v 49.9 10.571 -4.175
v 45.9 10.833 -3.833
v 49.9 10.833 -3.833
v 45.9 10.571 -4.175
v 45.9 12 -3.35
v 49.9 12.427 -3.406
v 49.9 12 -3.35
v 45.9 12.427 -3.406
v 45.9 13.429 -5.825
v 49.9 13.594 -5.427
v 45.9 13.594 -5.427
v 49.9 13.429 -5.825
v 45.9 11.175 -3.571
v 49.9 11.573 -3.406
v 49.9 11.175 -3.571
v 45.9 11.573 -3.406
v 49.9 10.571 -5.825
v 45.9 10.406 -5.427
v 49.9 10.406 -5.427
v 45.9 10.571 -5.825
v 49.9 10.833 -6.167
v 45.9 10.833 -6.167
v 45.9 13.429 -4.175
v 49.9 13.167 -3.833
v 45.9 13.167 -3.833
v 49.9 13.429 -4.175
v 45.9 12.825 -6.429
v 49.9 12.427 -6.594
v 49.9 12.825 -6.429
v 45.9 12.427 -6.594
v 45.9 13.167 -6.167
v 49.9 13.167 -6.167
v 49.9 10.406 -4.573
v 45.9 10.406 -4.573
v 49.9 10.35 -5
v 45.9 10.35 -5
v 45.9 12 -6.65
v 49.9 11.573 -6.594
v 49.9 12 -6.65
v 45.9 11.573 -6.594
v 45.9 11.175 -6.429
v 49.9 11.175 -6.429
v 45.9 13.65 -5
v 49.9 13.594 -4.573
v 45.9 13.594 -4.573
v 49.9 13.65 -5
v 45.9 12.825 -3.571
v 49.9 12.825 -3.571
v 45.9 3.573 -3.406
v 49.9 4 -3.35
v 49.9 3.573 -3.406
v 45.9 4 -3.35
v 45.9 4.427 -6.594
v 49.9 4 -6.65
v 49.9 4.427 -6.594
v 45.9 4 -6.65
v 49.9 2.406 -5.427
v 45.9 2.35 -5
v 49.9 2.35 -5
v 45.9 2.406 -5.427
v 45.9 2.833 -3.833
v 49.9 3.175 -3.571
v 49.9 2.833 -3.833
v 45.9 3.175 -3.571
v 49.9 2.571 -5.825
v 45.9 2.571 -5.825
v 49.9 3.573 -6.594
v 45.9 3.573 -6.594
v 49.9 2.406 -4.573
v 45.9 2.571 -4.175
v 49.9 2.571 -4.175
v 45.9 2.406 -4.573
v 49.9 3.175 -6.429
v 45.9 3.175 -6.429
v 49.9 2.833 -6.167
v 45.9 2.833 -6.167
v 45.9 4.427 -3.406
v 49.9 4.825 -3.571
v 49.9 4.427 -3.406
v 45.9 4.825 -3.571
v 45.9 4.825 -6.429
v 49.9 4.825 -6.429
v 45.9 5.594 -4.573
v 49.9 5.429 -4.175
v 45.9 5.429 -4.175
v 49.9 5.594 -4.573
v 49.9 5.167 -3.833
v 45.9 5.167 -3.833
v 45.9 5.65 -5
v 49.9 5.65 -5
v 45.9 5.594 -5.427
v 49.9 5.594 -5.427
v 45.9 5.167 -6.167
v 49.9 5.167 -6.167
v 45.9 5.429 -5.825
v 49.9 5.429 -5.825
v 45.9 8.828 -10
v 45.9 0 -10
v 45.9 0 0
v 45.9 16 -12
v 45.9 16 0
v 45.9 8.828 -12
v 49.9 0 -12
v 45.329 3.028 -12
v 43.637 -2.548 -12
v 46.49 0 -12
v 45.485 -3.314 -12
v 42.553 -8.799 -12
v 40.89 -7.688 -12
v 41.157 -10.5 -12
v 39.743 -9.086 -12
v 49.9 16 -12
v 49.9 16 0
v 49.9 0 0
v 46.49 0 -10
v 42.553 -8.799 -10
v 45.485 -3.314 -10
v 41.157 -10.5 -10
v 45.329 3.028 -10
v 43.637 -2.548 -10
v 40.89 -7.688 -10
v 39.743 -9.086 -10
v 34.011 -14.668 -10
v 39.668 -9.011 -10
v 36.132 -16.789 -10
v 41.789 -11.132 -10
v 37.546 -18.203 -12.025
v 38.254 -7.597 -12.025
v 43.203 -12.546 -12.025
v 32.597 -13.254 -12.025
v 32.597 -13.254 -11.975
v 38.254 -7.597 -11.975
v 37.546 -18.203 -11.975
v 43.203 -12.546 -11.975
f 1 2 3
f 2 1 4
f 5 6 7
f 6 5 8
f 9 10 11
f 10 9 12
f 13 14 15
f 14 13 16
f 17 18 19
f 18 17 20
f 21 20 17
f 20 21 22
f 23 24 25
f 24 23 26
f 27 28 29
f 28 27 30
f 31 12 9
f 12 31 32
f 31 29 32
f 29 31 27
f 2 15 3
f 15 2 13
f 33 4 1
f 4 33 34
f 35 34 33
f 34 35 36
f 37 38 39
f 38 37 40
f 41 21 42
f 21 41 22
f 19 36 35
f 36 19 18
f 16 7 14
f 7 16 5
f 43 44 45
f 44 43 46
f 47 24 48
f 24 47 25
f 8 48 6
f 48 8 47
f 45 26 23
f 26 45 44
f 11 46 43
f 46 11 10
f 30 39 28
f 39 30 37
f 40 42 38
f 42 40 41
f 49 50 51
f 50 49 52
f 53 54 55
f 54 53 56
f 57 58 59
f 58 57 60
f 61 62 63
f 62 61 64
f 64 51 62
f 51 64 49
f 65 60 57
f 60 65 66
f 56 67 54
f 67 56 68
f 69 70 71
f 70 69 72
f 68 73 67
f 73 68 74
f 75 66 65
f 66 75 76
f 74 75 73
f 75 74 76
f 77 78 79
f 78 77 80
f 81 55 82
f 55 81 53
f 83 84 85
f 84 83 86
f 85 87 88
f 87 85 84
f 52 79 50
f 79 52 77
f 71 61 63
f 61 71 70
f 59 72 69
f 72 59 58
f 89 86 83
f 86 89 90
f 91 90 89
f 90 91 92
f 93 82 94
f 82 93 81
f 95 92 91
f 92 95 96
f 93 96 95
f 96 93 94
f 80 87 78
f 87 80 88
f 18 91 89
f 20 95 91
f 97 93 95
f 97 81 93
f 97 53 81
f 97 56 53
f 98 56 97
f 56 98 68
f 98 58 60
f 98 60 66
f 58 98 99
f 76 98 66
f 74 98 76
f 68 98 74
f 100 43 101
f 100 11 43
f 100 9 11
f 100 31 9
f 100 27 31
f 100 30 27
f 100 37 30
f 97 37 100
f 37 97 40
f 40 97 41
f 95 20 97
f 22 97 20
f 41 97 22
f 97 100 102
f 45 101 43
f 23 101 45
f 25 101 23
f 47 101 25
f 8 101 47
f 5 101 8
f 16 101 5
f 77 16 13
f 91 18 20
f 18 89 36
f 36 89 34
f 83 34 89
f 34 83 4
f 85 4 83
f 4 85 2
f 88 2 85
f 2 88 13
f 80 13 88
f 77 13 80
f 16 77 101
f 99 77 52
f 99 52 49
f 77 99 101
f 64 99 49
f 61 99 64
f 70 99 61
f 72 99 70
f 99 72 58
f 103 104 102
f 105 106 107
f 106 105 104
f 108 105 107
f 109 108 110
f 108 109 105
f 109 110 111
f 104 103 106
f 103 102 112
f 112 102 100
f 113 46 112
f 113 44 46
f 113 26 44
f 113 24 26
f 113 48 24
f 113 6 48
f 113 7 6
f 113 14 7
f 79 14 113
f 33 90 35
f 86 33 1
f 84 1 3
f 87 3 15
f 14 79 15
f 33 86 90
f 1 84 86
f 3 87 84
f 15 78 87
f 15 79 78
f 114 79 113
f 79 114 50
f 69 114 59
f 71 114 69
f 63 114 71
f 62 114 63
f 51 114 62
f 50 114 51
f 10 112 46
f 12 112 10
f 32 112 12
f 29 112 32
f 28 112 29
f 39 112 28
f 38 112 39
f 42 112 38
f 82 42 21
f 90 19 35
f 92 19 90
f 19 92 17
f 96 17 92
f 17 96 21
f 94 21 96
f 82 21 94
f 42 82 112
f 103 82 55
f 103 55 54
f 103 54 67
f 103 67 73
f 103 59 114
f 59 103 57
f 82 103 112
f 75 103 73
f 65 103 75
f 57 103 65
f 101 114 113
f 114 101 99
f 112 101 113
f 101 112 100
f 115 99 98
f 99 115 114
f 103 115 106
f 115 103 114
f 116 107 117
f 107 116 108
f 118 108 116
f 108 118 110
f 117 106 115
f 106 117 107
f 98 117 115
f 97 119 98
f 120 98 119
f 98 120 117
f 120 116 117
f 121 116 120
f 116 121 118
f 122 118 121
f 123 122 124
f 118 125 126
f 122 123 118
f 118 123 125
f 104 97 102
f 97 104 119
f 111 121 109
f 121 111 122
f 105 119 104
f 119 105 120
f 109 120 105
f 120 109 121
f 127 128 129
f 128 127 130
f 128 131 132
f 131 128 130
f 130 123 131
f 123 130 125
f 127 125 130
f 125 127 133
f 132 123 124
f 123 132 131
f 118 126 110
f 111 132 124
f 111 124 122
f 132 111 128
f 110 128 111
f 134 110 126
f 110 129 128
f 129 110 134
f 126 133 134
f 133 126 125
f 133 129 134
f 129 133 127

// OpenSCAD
// file: microscope_parameters.scad
/******************************************************************
*                                                                 *
* OpenFlexure Microscope: Microscope Parameters                   *
*                                                                 *
* This is the top-level configuration file for the OpenFlexure    *
* microscope, an open microscope and 3-axis translation stage.    *
* It gets really good precision over a ~10mm range, by using      *
* plastic flexure mechanisms.                                     *
*                                                                 *
* Generally I've tried to put parts (or collections of closely    *
* related parts) in their own files.  However, all the parts      *
* depend on the geometry of the microscope - so these parameters  *
* are gathered together here.  In general, the ones you might     *
* to change are towards the top!  Lower-down ones are defined in  *
* terms of higher-up ones - confusion might arise if you redefine *
* these later...                                                  *
*                                                                 *
* (c) Richard Bowman, January 2016                                *
* Released under the CERN Open Hardware License                   *
*                                                                 *
* http://www.github.com/rwb27/openflexure_microscope              *
* http://www.docubricks.com/projects/openflexure-microscope       *
* http://www.waterscope.org                                       *
*                                                                 *
******************************************************************/

d = 0.05;
$fn=32;

// These are the most useful parameters to change!
big_stage = false;
motor_lugs = true;
version_numstring = "5.17.2";
camera = "picamera_2"; //see cameras/camera.scad for valid values
optics = big_stage?"rms_f40d16":"pilens"; //see optics.scad for valid values

// This sets the basic geometry of the microscope
sample_z = big_stage?65:40; // height of the top of the stage
leg_r = big_stage?30:25; // radius of innermost part of legs (stage size)
hole_r = big_stage?15:10; // size of hole in the stage
xy_lever_ratio = big_stage?4.0/7.0:1.0; // mechanical advantage of actuator over stage - can be used to trade speed and precision
z_lever_ratio = big_stage?2.4:2.6; // as above, for Z axis (must be >1)
// The variables below affect the position of the objective mount
z_strut_l = big_stage?20:15; //length of struts supporting Z carriage
objective_clip_y = big_stage?12:6; // y position of clip for optics
objective_clip_w = 10; // width of the dovetail clip for the optics
foot_height = 15; //height of the feet (distance from bottom of body to table)

// These variables set the dimensions of flexures
// You might want to tweak them if your material (or printer)
// is different from the ones I've tested, though ABS/PLA extrusion
// is generally fine with my parameters
stage_flex_w = 4; // width of XY axis flexures
zflex_l = 1.5;    // length of (all) flexible bits
zflex_t = 0.75;   // thickness of (all) flexible bits
zflex = [stage_flex_w, zflex_l, zflex_t]; // the above in new-style format
flex_a = 0.15;    // sine of the angle through which flexures can be bent

// Compile a sensible version string
version_string = str("v",version_numstring, big_stage?"-LS":"-SS", sample_z, motor_lugs?"-M":"");
echo(str("Compiling OpenFlexure Microscope ",version_string));

stage_t=5; //thickness of the XY stage (at thickest point, most is 1mm less)
flex_z1 = 0;      // z position of lower flexures for XY axis
flex_z2 = sample_z-stage_t; //height of upper XY flexures
z_strut_t = 6;  // (z) thickness of struts for Z axis
z_flex_w = 4;   // width of struts for Z axis
leg = [4,stage_flex_w,flex_z2+zflex_t]; // size of vertical legs
leg_middle_w = 12; // width of the middle part of each leg
actuator_h = 25; //height of the actuator columns
dz = 0.5; //small increment in Z (~ 2 layers)

leg_outer_w = leg_middle_w + 2*zflex_l + 2*leg[0]; // overall width of parallelogram legs that support the stagef
actuator = [3*1.2+2*2,(flex_z2 - flex_z1)*xy_lever_ratio,6]; // dimensions of the core part of the actuating levers for X and Y - NB should match the column_base_r in compact_nut_seat.scad
actuating_nut_r = (flex_z2 - flex_z1)*xy_lever_ratio; // distance from leg_r to the actuating nut/screw for the XY axes
xy_actuator_travel = actuating_nut_r*0.15; // distance moved by XY axis actuators
z_flexure_x = (leg_r-zflex_l-max(5,leg[2]*0.1))*sqrt(2); // x position of the outside of the Z-axis static anchors (either side of the XY stage, on the X axis)
z_flexure_spacing = min(flex_z2-actuator[2]-z_strut_l*0.22-2, 30); // distance between the two sets of flexures on the Z axis
z_carriage = [(z_flexure_x-zflex_l*2-z_strut_l)+d,4,z_flexure_spacing+zflex_t]; //size of the moving block for the Z carriage
z_nut_y = (z_strut_l+zflex_l)*z_lever_ratio+zflex_l/2; // position of Z actuator
z_actuator_travel = z_nut_y*0.15; // distance moved by the Z actuator
z_carriage_y = z_strut_l+2*zflex_l; // y position of moving pivot on Z axis
z_link_w = 4; // width of linking bar between top Z-axis flexure struts
bridge_dz = 10; // spacing between thin links on legs
base_t=1; // thickness of the flat base of the structure
wall_h=15; // height of the stiffening vertical(ish) walls
wall_t=2; //thickness of the stiffening walls
zawall_h = z_flexure_spacing - 5; //height of wall near Z anchor
zbwall_h = z_actuator_travel+z_strut_t+1+2; //height of bridge over Z lever
illumination_clip_y = (-(leg_r-zflex_l-wall_t/2+leg_outer_w/2)/sqrt(2)
                       -wall_t/2-1); //position of clip for
                      // illumination/back foot.  This is set to
                      // coincide with the wall between the back
                      // two legs.
illumination_arm_screws = [[0,illumination_clip_y+3,0],
                           [-z_flexure_x+3,-3,0],
                           [z_flexure_x-3,-3,0]];
                      // positions of screws that mount the adjustable version of the 
                      // illumination arm
condenser_clip_y = -8; //position of dovetail for condenser assembly
base_mounting_holes = [[-20,z_nut_y-4,0],[20,z_nut_y-4,0],[-z_flexure_x-4,-8,0],[z_flexure_x+4,-8,0]]; // holes to screw the microscope to a baseplate
// main file
/******************************************************************
*                                                                 *
* OpenFlexure Microscope: Riser to mount sample slightly higher   *
*                                                                 *
* This is part of the OpenFlexure microscope, an open-source      *
* microscope and 3-axis translation stage.  It gets really good   *
* precision over a ~10mm range, by using plastic flexure          *
* mechanisms.                                                     *
*                                                                 *
* (c) Richard Bowman, January 2016                                *
* Released under the CERN Open Hardware License                   *
*                                                                 *
******************************************************************/


use <utilities.scad>;
include <microscope_parameters.scad>;

sep = 26;
$fn=24;

slide = [75.8,25.8,1.0];
h = 10;
size = slide + [1,1,0]*8*2 + [0,0,h+1];

module slide_riser(){
    difference(){
        translate([-size[0],-size[1],0]/2) cube(size);
        
        //cut-out for slide
        hull() translate([-slide[0]/2,-slide[1]/2,h]){
            translate(-[1,1,0]*slide[2]/2) cube([999,999,d]);
            translate([1,1,2]*999+[0,0,slide[2]]) cube([999,999,d]);
        }
        
        //mounting holes
        reflect([1,0,0]) reflect([0,1,0]) rotate(-45) translate([leg_middle_w/2,leg_r-zflex_l-4,2]){
            cylinder(r=3/2*1.15,h=999,center=true); //mounting holes
            cylinder(r=3*1.15,h=999); //mounting holes
        }
        
        //central hole
        cylinder(r=hole_r,h=999,center=true, $fn=32);
        
        //mounting holes at the side
        translate([size[0]/2,0,h/2]) repeat([0,8,0], floor(size[1]/8-1), center=true){
           rotate([0,90,0]) cylinder(r=3/2*0.95, h=16,center=true);
        }
    } 
       
}

module slide_clip(){
    translate([slide[0]/2,slide[1]/2,h+d/2]) rotate(45) hull(){
        // this part clamps the slide
        cube([3,8,d],center=true);
        translate([0,0,slide[2]+1-d/2]) cube([3+2+2*slide[2],8,d],center=true);
    }
    
    difference(){
        // Mounting plate
        translate([size[0]/2,-8*2,0]) cube([4,8*2,size[2]]);
        
        // mounting holes at the side
        translate([size[0]/2,0,h/2]) repeat([0,8,0], floor(size[1]/8-1), center=true){
           rotate([0,90,0]) cylinder(r=3/2*1.1, h=16,center=true);
        }
    }
    
    // join the two with a curve.  It goes 45 degrees.  
    // it passes the point [slide[0],slide[1],h]/2 and also [size[0]/2+1,?,h]
    // the change in X over 45 degrees is equal to (1-sqrt(2)) of
    // the radius, so 
    dx = size[0]/2+1 - slide[0]/2;
    roc = dx/(1-1/sqrt(2));
    echo(roc);
    translate([size[0]/2+1-roc, slide[1]/2-roc/sqrt(2),h]) difference(){
        intersection(){
            cylinder(r=roc+1, h=size[2]-h, $fn=32);
            linear_extrude(999) polygon([[0,0],[1,0],[1,1]]*999);
        }
        cylinder(r=roc-1,h=999,center=true,$fn=32);
    }
}

//slide_riser();
rotate([180,0,0]) slide_clip();
